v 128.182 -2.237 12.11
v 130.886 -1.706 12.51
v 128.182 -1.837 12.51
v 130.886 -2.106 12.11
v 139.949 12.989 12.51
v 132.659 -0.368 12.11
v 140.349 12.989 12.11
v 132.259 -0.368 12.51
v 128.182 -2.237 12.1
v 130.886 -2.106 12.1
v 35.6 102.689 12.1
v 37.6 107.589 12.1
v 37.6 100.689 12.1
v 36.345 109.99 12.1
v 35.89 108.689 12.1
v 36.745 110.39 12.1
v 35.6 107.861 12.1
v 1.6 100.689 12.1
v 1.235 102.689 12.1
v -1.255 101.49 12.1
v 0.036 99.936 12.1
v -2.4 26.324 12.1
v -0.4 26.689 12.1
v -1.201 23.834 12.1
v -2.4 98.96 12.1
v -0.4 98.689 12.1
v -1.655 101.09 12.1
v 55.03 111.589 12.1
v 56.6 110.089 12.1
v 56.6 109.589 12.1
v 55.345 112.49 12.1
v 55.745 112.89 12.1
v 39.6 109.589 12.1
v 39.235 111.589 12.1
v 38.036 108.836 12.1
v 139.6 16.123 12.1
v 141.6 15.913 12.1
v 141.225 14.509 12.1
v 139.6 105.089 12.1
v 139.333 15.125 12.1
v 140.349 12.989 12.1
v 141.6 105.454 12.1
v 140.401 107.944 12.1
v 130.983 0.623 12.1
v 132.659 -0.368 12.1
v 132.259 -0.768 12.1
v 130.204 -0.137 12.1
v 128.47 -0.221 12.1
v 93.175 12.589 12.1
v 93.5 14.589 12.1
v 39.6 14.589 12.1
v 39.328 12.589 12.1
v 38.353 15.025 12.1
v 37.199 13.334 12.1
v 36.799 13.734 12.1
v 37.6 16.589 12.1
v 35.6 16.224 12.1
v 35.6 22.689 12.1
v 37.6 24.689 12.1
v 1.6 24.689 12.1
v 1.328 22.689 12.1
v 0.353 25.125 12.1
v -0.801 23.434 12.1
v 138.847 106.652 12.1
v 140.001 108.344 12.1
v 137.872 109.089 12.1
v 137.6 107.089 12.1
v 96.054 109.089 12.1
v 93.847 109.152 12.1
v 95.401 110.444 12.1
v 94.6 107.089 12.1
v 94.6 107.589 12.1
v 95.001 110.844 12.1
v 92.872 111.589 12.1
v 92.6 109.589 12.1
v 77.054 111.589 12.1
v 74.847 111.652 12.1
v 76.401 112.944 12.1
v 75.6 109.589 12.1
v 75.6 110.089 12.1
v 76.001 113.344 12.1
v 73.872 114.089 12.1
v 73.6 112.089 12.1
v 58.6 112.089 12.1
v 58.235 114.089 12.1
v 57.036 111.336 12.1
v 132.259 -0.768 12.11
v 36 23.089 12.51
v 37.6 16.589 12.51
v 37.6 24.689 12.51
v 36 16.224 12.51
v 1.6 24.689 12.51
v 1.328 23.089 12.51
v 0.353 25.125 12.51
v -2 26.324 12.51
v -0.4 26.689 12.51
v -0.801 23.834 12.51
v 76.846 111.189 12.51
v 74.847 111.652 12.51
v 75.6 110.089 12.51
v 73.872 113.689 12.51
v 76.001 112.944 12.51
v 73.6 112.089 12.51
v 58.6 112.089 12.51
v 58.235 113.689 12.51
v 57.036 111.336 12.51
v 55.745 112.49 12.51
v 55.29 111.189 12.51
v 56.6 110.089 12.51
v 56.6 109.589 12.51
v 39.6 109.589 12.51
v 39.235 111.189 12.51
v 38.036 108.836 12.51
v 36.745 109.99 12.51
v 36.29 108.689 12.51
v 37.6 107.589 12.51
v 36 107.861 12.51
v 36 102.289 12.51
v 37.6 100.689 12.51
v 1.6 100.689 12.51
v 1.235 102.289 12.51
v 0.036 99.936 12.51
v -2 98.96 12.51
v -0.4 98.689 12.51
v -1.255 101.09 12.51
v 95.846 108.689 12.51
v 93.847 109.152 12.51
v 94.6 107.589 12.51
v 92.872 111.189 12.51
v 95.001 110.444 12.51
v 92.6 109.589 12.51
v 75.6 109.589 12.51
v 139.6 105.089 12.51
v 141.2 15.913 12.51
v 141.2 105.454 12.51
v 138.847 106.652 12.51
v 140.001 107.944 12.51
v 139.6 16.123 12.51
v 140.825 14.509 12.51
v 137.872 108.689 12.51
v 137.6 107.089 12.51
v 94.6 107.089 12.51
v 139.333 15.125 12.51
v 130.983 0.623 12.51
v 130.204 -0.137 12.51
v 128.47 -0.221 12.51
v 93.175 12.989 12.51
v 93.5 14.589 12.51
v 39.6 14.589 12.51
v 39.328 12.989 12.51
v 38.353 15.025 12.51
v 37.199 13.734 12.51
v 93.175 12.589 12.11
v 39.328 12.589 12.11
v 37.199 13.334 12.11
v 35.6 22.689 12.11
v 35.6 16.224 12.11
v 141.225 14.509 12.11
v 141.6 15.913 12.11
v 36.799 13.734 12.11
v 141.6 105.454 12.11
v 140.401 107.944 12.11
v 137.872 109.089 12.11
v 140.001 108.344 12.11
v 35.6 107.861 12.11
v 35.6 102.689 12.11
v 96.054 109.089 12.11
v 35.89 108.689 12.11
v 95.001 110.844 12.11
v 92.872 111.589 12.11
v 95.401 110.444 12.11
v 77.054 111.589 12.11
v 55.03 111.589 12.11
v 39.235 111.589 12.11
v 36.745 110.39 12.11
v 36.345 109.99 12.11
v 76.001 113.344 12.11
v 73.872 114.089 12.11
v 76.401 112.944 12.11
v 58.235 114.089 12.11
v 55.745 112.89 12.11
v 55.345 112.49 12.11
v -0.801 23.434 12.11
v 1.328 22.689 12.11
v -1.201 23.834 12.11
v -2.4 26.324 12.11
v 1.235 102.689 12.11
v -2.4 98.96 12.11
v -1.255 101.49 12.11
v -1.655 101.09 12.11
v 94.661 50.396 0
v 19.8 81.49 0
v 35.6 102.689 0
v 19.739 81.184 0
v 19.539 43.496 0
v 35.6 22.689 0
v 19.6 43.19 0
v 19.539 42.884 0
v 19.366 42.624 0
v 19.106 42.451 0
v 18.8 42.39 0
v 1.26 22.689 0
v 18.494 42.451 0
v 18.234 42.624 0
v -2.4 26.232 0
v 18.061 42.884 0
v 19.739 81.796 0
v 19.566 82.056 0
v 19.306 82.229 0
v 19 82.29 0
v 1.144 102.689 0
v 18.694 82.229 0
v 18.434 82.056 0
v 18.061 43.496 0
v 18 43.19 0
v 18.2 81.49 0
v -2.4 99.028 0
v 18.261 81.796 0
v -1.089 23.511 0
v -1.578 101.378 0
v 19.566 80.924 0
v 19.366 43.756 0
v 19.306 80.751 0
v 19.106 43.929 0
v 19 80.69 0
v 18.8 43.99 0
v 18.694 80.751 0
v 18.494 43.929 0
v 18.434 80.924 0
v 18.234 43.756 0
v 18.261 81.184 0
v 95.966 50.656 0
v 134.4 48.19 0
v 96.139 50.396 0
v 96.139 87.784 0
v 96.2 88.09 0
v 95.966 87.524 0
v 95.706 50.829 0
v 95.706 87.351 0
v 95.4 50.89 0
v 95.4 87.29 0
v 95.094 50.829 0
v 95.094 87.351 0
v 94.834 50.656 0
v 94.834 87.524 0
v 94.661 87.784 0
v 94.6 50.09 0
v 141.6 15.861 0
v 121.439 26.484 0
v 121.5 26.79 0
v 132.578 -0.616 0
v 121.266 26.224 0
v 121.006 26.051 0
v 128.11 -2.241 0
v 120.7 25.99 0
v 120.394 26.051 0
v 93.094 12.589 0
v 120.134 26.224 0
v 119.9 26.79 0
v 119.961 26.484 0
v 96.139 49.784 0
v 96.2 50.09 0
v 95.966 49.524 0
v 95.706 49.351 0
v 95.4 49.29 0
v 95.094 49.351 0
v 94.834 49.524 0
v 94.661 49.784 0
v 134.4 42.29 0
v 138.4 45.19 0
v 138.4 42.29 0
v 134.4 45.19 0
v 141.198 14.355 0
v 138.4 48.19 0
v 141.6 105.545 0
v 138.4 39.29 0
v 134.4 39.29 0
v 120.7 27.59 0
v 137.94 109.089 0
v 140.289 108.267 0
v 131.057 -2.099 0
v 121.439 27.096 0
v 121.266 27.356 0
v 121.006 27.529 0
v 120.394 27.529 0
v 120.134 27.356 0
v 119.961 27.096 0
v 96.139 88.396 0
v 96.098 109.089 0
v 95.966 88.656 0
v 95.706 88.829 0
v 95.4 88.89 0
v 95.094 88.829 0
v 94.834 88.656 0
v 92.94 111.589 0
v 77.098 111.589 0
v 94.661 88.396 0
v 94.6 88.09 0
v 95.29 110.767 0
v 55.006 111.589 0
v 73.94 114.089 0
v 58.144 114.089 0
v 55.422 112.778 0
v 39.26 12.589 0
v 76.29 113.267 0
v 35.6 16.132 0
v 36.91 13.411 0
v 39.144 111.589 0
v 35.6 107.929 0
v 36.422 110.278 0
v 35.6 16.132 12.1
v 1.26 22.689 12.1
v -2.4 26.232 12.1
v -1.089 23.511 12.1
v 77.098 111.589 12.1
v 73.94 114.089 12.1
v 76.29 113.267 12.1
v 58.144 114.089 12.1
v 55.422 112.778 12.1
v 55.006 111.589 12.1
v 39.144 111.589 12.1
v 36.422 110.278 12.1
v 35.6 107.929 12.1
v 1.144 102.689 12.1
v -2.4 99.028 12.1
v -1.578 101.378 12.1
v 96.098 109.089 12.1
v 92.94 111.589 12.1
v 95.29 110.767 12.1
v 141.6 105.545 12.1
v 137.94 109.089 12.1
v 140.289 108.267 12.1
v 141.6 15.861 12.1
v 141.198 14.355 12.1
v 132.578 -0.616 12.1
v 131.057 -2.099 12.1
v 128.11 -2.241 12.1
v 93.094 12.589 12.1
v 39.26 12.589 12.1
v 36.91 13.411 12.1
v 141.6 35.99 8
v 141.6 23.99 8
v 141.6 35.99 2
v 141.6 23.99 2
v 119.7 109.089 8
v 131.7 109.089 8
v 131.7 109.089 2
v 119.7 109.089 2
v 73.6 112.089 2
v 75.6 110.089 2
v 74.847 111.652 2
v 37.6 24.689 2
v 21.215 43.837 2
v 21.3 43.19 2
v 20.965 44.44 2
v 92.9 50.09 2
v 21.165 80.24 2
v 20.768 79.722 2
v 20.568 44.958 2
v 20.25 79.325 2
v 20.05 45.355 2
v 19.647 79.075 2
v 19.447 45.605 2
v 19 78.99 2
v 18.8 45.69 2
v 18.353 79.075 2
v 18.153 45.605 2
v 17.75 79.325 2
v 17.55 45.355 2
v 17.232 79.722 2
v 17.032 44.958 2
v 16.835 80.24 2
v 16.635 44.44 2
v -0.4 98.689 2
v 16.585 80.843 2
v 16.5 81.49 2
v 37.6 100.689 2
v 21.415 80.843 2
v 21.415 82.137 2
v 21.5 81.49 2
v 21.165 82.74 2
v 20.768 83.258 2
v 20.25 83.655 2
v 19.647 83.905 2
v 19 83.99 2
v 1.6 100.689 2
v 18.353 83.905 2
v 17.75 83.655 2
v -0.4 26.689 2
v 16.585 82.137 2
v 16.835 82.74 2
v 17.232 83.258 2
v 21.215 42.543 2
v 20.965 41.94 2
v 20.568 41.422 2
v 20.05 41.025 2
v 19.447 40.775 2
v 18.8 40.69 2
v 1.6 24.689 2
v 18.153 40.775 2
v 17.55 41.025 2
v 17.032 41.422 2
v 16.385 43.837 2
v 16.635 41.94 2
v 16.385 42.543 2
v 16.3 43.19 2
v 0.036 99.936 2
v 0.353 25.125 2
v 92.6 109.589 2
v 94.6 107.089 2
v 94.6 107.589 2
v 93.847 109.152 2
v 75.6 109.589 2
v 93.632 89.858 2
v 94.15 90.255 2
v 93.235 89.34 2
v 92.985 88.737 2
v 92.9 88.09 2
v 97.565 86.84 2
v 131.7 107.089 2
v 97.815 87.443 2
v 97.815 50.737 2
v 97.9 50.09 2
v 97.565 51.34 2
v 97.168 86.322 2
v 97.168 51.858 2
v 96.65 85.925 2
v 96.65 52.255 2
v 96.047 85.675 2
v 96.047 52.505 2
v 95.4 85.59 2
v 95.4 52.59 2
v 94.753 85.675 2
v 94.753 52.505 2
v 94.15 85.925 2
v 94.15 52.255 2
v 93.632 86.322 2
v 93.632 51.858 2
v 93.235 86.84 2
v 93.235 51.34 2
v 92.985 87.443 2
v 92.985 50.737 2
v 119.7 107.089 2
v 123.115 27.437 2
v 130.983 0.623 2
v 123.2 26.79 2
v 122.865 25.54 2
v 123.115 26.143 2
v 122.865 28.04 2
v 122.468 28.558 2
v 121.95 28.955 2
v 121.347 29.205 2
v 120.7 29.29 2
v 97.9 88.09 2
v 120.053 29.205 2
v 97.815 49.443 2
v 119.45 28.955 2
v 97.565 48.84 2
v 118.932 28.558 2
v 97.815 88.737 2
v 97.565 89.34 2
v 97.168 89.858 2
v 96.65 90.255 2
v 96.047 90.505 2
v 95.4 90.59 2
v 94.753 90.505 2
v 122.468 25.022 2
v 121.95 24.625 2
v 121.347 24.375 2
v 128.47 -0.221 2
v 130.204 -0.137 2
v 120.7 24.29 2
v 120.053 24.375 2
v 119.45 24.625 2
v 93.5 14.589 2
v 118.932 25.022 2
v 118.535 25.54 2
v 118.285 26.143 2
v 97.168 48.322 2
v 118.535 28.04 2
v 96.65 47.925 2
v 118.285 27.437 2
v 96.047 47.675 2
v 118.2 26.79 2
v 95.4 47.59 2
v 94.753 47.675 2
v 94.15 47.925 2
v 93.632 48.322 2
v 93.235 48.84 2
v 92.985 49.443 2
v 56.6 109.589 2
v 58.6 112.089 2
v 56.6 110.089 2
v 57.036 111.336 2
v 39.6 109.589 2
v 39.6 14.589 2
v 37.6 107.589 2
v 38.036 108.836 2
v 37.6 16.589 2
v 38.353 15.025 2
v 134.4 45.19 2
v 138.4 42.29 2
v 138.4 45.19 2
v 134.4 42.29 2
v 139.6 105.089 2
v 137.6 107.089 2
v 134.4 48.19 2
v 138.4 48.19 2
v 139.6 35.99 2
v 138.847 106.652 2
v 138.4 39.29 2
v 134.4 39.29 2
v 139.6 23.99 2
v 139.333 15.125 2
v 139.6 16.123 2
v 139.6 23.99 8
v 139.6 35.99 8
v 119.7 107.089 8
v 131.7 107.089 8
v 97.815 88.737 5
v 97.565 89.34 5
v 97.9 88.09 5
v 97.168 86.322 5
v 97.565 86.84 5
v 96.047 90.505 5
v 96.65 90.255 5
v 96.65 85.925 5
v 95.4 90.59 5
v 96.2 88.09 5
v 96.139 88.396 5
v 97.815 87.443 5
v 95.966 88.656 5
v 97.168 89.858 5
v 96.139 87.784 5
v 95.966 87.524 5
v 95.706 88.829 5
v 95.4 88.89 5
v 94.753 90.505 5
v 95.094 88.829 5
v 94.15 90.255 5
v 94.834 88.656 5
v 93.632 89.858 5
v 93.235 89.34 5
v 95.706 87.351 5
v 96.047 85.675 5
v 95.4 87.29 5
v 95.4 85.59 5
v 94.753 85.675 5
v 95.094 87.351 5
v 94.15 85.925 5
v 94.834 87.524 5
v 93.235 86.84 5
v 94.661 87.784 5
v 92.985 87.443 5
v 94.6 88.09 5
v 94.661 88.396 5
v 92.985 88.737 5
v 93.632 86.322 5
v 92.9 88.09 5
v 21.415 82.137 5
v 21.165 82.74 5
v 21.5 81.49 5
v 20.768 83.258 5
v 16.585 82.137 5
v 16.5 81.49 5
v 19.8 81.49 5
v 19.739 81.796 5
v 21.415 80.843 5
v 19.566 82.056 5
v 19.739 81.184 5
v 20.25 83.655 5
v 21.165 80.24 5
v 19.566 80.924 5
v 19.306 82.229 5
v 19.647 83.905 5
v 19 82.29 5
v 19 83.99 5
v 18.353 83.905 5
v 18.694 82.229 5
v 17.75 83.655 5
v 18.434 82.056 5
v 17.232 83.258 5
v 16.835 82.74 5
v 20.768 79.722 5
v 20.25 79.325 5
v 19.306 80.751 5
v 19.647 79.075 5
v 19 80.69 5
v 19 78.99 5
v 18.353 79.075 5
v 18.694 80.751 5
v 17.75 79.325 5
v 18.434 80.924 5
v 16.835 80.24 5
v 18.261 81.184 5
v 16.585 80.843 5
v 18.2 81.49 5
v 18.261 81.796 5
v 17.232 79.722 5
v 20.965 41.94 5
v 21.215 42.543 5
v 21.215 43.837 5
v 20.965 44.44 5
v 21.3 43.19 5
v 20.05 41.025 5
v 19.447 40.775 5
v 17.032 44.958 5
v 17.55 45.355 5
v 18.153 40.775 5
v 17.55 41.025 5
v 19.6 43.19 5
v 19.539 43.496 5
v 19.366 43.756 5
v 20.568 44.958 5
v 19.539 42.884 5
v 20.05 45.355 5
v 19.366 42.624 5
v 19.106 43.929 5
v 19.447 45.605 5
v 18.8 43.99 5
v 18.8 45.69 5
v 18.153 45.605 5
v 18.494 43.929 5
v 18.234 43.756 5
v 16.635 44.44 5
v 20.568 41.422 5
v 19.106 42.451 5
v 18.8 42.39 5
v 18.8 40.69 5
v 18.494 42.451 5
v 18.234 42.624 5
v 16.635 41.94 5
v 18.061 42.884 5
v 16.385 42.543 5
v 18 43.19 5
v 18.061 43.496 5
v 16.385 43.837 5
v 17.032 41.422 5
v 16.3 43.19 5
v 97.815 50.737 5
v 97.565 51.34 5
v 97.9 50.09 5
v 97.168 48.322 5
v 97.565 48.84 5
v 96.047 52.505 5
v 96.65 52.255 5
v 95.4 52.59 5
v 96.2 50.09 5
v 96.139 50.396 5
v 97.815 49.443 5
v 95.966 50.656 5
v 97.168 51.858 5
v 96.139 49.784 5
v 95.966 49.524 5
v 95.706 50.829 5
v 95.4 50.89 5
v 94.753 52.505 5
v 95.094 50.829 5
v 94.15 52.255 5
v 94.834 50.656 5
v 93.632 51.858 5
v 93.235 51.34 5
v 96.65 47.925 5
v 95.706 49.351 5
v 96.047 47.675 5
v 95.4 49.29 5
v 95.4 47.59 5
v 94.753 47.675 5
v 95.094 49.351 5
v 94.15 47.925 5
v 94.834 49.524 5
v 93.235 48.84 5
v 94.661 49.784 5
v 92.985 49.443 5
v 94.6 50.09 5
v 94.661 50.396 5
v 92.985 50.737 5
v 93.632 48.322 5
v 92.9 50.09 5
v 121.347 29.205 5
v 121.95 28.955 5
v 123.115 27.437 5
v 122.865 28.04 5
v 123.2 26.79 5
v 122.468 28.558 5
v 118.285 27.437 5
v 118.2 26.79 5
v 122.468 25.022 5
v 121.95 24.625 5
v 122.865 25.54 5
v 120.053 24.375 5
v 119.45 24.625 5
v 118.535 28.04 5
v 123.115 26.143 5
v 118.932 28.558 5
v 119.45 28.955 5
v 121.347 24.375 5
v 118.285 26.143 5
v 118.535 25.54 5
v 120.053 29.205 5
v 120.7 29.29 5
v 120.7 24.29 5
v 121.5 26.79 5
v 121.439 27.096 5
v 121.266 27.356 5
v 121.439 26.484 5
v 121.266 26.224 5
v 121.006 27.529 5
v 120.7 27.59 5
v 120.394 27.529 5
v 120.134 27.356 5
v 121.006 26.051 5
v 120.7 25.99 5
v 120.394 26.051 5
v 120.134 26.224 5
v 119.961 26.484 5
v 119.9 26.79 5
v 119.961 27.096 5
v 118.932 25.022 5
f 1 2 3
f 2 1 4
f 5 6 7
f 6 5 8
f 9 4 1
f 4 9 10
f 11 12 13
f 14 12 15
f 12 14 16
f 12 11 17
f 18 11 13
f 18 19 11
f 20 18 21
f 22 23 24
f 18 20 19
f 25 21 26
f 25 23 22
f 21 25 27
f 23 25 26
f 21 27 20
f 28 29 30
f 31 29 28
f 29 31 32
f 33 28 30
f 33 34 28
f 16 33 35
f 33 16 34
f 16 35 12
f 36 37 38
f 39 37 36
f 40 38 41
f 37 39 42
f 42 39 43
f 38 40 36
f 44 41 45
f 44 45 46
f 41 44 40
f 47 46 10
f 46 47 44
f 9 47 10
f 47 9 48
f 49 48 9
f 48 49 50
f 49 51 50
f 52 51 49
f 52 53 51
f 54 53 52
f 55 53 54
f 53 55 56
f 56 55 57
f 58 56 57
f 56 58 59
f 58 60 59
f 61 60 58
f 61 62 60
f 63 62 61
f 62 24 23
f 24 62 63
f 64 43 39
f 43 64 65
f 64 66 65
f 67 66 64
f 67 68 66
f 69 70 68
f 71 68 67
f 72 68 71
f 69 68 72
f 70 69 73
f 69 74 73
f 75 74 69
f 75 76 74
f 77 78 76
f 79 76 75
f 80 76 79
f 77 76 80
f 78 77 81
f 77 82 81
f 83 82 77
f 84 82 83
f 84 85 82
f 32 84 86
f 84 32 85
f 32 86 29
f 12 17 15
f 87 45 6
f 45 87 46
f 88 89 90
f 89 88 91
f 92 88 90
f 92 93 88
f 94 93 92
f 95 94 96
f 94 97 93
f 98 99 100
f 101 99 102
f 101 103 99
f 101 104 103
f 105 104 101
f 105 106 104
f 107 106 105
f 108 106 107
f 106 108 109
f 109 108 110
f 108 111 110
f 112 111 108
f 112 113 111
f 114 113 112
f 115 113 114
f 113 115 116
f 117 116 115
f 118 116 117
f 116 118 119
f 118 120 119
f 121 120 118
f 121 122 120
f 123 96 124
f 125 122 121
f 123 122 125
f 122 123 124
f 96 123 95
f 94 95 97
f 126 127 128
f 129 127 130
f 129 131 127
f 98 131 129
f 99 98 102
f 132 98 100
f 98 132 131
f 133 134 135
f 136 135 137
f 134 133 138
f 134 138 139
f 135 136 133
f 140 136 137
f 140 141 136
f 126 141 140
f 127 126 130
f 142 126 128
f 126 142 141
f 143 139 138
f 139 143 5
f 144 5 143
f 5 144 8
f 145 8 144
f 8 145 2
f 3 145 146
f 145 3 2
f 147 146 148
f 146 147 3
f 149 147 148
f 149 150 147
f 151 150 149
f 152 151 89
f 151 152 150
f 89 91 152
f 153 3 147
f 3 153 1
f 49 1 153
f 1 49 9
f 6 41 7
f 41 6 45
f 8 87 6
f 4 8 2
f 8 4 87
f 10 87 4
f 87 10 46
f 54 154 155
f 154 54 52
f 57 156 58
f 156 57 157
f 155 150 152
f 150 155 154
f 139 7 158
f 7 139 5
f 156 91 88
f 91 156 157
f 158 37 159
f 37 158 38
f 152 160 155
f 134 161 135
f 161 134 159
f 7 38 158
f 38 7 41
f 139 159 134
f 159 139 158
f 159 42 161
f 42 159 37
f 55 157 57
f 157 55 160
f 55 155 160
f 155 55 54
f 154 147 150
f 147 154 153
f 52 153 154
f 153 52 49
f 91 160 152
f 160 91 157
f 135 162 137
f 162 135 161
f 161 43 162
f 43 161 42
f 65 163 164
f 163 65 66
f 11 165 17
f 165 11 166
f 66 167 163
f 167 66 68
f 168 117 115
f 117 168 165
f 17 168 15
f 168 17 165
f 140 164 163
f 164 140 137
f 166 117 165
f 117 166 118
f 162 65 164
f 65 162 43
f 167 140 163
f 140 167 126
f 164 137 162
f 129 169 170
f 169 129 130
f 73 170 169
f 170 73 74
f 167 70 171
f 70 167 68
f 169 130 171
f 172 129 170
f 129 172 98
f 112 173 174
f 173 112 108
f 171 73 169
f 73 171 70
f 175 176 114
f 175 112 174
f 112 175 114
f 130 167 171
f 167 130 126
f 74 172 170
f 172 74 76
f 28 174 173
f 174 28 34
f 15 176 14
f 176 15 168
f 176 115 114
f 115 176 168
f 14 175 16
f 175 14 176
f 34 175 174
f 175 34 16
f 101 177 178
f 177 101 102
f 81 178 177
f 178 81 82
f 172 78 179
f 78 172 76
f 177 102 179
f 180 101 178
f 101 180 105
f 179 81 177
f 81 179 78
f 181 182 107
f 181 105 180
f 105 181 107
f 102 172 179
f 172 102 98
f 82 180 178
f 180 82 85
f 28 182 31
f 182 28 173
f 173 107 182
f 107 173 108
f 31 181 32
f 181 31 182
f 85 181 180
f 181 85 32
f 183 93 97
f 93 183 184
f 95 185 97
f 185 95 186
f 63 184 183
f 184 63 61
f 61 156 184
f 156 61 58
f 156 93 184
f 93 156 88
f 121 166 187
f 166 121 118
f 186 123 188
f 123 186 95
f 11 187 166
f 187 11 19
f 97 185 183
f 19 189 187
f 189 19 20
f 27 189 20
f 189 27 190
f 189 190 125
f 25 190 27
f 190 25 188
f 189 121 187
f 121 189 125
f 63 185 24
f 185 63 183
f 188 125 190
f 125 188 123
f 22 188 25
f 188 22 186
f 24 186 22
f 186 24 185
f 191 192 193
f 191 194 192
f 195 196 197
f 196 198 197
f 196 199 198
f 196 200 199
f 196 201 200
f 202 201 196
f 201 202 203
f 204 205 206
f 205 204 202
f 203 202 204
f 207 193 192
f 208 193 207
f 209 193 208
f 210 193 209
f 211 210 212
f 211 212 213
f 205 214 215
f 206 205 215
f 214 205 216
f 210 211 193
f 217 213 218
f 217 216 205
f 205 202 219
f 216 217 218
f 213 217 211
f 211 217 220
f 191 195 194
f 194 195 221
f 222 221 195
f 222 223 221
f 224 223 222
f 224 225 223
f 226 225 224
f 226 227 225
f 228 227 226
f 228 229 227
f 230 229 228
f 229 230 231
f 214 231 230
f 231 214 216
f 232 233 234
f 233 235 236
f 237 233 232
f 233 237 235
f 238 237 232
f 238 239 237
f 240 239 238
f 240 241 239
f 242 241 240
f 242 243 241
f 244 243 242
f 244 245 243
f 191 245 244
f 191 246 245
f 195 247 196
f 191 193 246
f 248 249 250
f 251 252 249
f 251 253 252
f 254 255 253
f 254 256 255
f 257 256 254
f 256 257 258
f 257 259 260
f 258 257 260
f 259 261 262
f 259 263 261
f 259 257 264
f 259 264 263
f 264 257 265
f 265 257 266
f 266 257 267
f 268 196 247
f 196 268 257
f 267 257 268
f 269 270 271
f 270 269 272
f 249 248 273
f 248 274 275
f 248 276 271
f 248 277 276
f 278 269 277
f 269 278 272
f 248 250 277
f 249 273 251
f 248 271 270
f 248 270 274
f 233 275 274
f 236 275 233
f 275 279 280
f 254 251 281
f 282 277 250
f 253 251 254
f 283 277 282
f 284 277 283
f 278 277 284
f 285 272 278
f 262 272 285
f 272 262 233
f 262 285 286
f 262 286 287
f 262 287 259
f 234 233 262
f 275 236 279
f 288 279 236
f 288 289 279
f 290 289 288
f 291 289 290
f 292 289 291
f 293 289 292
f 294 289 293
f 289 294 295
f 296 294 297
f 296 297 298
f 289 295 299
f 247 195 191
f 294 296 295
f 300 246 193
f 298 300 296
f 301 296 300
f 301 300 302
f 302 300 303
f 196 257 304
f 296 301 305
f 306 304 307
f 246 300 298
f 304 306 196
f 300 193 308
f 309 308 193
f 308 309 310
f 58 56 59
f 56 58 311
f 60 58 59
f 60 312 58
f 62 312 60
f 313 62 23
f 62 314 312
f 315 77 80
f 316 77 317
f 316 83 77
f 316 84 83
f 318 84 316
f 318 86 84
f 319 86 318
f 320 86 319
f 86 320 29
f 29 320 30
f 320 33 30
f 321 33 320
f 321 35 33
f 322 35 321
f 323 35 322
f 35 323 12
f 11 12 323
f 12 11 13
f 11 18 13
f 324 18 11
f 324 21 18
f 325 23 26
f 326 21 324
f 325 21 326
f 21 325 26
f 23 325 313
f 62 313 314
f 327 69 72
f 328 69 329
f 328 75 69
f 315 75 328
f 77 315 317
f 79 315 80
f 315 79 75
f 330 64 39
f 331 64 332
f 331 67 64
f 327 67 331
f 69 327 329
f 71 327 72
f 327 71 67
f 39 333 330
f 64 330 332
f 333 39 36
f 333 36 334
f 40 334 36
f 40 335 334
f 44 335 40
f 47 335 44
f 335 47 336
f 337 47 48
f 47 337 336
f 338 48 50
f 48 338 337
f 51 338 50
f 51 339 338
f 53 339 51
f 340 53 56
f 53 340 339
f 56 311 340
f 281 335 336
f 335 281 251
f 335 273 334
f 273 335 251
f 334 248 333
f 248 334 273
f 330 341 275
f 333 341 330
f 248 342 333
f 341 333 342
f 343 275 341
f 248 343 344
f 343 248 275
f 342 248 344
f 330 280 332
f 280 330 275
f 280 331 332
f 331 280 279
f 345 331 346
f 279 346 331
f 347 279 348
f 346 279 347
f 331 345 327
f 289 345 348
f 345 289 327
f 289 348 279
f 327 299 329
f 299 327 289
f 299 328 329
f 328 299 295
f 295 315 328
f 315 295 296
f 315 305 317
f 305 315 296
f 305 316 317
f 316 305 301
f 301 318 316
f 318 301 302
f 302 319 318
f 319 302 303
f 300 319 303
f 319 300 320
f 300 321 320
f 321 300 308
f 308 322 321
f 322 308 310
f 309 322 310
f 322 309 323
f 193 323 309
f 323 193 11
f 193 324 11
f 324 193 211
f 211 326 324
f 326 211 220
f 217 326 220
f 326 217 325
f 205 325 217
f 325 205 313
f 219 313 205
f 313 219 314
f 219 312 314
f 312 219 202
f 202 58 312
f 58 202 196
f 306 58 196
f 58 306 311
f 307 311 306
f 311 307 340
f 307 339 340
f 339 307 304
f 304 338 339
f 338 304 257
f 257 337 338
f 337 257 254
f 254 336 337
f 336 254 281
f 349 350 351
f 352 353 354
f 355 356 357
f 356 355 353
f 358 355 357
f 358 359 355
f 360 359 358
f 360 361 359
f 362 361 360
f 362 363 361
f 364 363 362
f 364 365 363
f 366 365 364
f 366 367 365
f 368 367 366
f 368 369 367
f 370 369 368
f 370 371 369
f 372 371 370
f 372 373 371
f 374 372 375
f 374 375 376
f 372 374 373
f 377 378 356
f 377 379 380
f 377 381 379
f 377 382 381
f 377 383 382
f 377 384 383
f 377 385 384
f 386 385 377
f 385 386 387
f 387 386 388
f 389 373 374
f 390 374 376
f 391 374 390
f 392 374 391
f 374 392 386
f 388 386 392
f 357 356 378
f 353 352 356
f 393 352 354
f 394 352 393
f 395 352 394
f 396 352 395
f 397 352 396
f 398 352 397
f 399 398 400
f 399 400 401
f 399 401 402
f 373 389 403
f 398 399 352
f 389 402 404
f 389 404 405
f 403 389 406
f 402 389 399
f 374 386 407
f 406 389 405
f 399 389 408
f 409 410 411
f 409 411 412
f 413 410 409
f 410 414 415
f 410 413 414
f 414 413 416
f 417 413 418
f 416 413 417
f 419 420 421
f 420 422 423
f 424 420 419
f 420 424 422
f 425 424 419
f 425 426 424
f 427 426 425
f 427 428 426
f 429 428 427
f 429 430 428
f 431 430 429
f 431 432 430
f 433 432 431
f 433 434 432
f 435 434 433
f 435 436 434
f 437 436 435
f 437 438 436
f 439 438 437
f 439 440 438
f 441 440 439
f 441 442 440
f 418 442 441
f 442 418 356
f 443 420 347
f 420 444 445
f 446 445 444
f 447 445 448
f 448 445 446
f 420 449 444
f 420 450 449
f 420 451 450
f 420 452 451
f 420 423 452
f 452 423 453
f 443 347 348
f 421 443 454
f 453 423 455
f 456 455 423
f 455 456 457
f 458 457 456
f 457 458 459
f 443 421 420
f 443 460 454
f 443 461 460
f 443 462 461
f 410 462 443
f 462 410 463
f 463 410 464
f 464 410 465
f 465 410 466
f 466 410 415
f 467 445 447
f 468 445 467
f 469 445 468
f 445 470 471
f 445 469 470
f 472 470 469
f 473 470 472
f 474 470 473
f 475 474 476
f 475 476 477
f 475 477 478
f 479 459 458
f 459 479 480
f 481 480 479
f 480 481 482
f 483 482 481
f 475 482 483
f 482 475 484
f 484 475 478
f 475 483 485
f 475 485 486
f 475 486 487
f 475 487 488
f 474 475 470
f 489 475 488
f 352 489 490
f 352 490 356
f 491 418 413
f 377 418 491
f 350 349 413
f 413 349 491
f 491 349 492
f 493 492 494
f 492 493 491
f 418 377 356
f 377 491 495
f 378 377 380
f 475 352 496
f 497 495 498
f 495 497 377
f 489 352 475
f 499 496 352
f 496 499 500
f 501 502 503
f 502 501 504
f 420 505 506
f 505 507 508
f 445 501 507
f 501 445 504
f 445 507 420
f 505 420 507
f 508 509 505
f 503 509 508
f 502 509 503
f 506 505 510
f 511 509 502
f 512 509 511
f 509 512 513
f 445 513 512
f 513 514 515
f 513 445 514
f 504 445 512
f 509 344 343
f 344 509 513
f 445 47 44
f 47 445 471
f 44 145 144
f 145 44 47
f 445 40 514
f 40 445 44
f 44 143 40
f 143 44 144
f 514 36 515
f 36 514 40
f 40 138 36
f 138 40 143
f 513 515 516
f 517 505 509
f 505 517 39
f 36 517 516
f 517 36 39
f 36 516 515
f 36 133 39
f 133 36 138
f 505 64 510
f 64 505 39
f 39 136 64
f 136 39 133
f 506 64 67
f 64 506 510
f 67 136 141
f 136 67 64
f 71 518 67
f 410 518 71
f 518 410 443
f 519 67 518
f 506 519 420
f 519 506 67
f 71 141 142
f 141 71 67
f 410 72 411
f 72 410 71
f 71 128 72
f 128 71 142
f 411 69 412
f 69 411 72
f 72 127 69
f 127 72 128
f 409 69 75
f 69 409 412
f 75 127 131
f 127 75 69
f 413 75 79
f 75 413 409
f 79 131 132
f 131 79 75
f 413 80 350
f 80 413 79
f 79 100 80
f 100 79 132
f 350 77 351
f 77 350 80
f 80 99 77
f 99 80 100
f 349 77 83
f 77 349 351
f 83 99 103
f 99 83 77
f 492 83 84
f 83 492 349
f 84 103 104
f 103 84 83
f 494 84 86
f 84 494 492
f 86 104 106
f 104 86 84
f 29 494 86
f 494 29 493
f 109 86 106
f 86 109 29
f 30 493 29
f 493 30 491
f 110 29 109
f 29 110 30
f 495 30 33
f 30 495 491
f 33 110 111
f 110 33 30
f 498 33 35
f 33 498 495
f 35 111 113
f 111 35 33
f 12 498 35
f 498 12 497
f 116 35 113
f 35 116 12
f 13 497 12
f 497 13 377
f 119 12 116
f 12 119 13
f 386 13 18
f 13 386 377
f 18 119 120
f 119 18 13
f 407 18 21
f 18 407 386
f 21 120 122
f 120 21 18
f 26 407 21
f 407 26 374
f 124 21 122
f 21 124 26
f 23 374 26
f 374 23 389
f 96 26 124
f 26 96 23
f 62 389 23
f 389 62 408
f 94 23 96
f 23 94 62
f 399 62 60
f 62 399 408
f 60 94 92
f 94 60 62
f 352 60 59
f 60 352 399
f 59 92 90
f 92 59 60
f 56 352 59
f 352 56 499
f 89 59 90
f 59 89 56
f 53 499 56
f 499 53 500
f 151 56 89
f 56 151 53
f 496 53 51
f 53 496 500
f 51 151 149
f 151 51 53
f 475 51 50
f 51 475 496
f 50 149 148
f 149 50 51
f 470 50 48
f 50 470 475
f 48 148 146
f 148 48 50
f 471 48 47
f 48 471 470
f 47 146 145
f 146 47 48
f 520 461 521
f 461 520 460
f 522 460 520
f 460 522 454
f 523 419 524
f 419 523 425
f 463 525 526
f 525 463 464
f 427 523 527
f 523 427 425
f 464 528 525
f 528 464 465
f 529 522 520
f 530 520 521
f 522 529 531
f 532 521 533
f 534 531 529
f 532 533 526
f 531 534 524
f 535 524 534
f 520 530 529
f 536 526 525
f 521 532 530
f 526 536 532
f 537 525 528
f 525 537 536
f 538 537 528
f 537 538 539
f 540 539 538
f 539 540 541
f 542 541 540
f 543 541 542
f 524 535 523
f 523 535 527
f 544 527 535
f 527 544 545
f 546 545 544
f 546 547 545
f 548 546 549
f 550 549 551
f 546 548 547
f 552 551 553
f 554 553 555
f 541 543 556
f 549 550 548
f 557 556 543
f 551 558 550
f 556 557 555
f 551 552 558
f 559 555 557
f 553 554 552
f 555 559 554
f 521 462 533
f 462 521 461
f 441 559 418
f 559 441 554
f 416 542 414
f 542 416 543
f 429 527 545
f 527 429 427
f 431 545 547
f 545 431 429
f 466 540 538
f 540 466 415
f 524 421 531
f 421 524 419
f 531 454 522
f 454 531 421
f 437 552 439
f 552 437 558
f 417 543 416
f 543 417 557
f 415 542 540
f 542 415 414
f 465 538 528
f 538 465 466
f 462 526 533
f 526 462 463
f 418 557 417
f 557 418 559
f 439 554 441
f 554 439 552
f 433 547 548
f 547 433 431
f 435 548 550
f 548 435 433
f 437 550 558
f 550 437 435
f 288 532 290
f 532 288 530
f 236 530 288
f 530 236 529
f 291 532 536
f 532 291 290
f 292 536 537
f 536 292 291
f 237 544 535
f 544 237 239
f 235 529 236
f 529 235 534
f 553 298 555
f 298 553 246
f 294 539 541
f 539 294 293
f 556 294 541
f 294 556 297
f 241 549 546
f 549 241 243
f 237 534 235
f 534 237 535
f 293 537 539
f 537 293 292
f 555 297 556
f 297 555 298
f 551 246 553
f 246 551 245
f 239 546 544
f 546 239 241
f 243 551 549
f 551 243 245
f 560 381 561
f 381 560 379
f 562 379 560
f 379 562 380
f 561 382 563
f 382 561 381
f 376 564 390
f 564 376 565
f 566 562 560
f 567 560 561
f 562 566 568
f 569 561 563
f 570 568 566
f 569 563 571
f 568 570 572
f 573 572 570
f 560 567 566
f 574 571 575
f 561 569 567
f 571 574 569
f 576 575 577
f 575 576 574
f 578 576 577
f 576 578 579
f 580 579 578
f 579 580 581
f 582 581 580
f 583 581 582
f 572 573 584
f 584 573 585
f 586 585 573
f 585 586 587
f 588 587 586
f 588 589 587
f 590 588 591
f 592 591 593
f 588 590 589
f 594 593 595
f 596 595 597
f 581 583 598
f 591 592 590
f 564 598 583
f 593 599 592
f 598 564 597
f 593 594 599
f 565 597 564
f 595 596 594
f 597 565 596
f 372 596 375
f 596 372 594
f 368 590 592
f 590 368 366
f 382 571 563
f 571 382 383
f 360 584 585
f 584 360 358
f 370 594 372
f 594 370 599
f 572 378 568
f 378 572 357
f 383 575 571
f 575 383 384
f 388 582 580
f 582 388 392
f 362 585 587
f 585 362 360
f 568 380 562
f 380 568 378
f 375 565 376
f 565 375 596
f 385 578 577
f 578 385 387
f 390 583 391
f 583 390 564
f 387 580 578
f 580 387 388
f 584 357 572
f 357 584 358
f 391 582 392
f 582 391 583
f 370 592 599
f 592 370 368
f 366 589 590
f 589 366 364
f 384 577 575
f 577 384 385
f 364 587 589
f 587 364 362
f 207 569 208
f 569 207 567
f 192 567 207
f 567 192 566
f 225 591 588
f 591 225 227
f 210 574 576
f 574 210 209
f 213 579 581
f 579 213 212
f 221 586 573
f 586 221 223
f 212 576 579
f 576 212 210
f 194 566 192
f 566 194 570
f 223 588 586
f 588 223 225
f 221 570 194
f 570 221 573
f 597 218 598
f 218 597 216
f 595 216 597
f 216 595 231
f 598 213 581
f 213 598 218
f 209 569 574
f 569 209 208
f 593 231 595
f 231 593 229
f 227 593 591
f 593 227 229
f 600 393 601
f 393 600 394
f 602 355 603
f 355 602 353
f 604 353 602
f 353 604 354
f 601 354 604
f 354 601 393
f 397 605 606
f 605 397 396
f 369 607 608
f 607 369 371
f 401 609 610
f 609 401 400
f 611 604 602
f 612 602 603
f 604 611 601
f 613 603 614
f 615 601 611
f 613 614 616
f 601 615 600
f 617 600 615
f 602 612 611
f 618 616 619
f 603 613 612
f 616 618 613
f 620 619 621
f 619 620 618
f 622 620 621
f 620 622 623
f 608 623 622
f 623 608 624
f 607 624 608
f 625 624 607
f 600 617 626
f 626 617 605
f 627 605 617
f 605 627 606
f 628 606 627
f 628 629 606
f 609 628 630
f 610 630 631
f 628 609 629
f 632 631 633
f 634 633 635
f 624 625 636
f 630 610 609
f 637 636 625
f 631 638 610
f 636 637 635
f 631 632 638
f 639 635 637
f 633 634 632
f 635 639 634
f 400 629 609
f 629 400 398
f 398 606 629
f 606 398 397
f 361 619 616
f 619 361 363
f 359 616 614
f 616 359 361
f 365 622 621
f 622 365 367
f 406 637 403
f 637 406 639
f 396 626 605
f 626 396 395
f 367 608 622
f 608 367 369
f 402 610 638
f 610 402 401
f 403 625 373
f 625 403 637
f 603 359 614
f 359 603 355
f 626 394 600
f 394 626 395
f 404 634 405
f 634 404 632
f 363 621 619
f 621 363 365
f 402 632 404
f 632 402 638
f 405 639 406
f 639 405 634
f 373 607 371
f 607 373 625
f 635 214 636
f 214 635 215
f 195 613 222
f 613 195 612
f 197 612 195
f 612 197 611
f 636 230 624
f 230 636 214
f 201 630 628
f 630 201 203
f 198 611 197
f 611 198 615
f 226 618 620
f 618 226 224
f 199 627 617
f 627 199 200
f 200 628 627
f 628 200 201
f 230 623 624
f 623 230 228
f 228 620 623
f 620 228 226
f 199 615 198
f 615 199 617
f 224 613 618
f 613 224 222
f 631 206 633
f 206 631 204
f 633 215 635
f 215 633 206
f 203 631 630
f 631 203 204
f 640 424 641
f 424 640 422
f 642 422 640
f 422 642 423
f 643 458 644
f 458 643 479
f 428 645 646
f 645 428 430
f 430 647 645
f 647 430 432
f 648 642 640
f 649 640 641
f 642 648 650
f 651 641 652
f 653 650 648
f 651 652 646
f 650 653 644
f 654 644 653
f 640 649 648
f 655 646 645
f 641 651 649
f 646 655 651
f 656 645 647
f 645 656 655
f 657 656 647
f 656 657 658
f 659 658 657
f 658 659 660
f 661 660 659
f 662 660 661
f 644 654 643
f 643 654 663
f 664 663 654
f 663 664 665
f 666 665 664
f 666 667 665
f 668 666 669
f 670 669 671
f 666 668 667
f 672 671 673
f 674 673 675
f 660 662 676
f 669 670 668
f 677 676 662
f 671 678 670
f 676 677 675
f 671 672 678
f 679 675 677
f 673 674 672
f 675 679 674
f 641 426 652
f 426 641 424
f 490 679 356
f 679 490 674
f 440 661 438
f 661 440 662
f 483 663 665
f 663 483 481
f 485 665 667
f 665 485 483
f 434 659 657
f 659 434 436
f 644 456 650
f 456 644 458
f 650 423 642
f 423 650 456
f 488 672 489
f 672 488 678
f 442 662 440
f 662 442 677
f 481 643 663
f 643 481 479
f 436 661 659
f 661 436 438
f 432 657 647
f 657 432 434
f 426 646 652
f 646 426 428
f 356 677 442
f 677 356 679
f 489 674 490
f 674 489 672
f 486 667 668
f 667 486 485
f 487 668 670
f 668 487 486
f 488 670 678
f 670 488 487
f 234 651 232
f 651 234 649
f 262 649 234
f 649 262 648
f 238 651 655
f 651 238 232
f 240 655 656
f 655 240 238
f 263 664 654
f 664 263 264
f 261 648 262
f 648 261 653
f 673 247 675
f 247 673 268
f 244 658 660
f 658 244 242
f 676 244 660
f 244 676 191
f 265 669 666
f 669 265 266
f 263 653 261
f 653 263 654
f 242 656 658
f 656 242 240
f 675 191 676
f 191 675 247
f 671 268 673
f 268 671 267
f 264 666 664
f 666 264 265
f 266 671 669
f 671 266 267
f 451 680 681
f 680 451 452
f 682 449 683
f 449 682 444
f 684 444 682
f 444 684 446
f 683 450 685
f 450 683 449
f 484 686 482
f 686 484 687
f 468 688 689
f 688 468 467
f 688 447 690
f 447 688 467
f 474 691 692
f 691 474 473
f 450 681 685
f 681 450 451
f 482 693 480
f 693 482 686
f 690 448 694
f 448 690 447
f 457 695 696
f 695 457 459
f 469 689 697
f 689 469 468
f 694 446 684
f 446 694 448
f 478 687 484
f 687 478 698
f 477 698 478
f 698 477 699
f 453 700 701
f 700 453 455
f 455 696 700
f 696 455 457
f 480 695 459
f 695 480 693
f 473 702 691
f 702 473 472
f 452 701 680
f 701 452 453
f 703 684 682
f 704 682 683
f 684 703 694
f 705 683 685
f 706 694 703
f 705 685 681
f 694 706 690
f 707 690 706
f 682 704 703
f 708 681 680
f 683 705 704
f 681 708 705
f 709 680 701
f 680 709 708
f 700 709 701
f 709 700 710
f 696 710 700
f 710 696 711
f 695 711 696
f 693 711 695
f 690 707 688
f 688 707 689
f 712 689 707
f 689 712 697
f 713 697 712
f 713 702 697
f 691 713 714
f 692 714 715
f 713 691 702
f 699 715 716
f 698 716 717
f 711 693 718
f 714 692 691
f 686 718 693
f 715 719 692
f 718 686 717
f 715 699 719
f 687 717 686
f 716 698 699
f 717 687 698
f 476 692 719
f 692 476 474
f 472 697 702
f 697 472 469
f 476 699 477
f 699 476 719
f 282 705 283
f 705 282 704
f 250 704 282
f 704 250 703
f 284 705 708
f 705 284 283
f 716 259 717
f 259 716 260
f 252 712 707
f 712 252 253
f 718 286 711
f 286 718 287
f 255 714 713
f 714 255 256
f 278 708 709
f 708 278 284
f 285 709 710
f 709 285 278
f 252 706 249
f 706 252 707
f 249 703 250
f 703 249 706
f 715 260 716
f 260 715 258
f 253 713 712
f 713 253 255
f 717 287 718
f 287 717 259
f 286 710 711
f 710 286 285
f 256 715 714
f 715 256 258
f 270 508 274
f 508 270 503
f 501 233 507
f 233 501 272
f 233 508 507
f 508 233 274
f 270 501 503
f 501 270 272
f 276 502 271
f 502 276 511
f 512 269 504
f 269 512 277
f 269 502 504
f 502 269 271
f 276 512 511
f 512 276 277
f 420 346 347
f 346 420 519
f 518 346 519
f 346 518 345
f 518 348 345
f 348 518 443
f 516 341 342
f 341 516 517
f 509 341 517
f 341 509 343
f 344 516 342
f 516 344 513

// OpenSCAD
difference() {
	union() {
		difference() {
			union() {
				difference() {
					union() {
						difference() {
							union() {
								difference() {
									union() {
										difference() {
											union() {
												linear_extrude(height = 12.1) {
													offset(chamfer = false, delta = 2.0) {
														offset(r = 2.0) {
															offset(chamfer = false, delta = -2.0) {
																polygon(points = [[-0.4, 100.6887], [-0.4, 24.688699999999997], [37.6, 24.688699999999997], [37.6, 14.588700000000003], [93.5, 14.588700000000003], [130.1, -0.9112999999999971], [139.6, 15.588700000000003], [139.6, 107.0887], [94.6, 107.0887], [94.6, 109.5887], [75.6, 109.5887], [75.6, 112.0887], [56.6, 112.0887], [56.6, 109.5887], [37.6, 109.5887], [37.6, 100.6887]]);
															}
														}
													}
												}
												translate(v = [0, 0, 12.1]) {
													minkowski() {
														linear_extrude(height = 0.01) {
															offset(chamfer = false, delta = -0.4) {
																offset(chamfer = false, delta = 2.0) {
																	offset(r = 2.0) {
																		offset(chamfer = false, delta = -2.0) {
																			polygon(points = [[-0.4, 100.6887], [-0.4, 24.688699999999997], [37.6, 24.688699999999997], [37.6, 14.588700000000003], [93.5, 14.588700000000003], [130.1, -0.9112999999999971], [139.6, 15.588700000000003], [139.6, 107.0887], [94.6, 107.0887], [94.6, 109.5887], [75.6, 109.5887], [75.6, 112.0887], [56.6, 112.0887], [56.6, 109.5887], [37.6, 109.5887], [37.6, 100.6887]]);
																		}
																	}
																}
															}
														}
														cylinder($fn = 4, h = 0.4, r1 = 0.4, r2 = 0);
													}
												}
											}
											translate(v = [0, 0, 2.0]) {
												linear_extrude(height = 11.5) {
													offset(r = 2.0) {
														offset(chamfer = false, delta = -2.0) {
															polygon(points = [[-0.4, 100.6887], [-0.4, 24.688699999999997], [37.6, 24.688699999999997], [37.6, 14.588700000000003], [93.5, 14.588700000000003], [130.1, -0.9112999999999971], [139.6, 15.588700000000003], [139.6, 107.0887], [94.6, 107.0887], [94.6, 109.5887], [75.6, 109.5887], [75.6, 112.0887], [56.6, 112.0887], [56.6, 109.5887], [37.6, 109.5887], [37.6, 100.6887]]);
														}
													}
												}
											}
										}
										translate(v = [95.4, 88.09, 2.0]) {
											cylinder($fn = 24, d = 5.0, h = 3.0);
										}
									}
									translate(v = [95.4, 88.09, -1]) {
										cylinder($fn = 16, d = 1.6, h = 7.0);
									}
								}
								translate(v = [19, 81.49, 2.0]) {
									cylinder($fn = 24, d = 5.0, h = 3.0);
								}
							}
							translate(v = [19, 81.49, -1]) {
								cylinder($fn = 16, d = 1.6, h = 7.0);
							}
						}
						translate(v = [18.8, 43.19, 2.0]) {
							cylinder($fn = 24, d = 5.0, h = 3.0);
						}
					}
					translate(v = [18.8, 43.19, -1]) {
						cylinder($fn = 16, d = 1.6, h = 7.0);
					}
				}
				translate(v = [95.4, 50.09, 2.0]) {
					cylinder($fn = 24, d = 5.0, h = 3.0);
				}
			}
			translate(v = [95.4, 50.09, -1]) {
				cylinder($fn = 16, d = 1.6, h = 7.0);
			}
		}
		translate(v = [120.7, 26.79, 2.0]) {
			cylinder($fn = 24, d = 5.0, h = 3.0);
		}
	}
	translate(v = [120.7, 26.79, -1]) {
		cylinder($fn = 16, d = 1.6, h = 7.0);
	}
	translate(v = [134.4, 45.19, -1]) {
		cube(size = [4, 3, 14.5]);
	}
	translate(v = [134.4, 39.29, -1]) {
		cube(size = [4, 3, 14.5]);
	}
	translate(v = [125.7, 105.19, 5.0]) {
		cube(center = true, size = [12.0, 8.0, 6.0]);
	}
	translate(v = [137.7, 29.99, 5.0]) {
		cube(center = true, size = [8.0, 12.0, 6.0]);
	}
}
